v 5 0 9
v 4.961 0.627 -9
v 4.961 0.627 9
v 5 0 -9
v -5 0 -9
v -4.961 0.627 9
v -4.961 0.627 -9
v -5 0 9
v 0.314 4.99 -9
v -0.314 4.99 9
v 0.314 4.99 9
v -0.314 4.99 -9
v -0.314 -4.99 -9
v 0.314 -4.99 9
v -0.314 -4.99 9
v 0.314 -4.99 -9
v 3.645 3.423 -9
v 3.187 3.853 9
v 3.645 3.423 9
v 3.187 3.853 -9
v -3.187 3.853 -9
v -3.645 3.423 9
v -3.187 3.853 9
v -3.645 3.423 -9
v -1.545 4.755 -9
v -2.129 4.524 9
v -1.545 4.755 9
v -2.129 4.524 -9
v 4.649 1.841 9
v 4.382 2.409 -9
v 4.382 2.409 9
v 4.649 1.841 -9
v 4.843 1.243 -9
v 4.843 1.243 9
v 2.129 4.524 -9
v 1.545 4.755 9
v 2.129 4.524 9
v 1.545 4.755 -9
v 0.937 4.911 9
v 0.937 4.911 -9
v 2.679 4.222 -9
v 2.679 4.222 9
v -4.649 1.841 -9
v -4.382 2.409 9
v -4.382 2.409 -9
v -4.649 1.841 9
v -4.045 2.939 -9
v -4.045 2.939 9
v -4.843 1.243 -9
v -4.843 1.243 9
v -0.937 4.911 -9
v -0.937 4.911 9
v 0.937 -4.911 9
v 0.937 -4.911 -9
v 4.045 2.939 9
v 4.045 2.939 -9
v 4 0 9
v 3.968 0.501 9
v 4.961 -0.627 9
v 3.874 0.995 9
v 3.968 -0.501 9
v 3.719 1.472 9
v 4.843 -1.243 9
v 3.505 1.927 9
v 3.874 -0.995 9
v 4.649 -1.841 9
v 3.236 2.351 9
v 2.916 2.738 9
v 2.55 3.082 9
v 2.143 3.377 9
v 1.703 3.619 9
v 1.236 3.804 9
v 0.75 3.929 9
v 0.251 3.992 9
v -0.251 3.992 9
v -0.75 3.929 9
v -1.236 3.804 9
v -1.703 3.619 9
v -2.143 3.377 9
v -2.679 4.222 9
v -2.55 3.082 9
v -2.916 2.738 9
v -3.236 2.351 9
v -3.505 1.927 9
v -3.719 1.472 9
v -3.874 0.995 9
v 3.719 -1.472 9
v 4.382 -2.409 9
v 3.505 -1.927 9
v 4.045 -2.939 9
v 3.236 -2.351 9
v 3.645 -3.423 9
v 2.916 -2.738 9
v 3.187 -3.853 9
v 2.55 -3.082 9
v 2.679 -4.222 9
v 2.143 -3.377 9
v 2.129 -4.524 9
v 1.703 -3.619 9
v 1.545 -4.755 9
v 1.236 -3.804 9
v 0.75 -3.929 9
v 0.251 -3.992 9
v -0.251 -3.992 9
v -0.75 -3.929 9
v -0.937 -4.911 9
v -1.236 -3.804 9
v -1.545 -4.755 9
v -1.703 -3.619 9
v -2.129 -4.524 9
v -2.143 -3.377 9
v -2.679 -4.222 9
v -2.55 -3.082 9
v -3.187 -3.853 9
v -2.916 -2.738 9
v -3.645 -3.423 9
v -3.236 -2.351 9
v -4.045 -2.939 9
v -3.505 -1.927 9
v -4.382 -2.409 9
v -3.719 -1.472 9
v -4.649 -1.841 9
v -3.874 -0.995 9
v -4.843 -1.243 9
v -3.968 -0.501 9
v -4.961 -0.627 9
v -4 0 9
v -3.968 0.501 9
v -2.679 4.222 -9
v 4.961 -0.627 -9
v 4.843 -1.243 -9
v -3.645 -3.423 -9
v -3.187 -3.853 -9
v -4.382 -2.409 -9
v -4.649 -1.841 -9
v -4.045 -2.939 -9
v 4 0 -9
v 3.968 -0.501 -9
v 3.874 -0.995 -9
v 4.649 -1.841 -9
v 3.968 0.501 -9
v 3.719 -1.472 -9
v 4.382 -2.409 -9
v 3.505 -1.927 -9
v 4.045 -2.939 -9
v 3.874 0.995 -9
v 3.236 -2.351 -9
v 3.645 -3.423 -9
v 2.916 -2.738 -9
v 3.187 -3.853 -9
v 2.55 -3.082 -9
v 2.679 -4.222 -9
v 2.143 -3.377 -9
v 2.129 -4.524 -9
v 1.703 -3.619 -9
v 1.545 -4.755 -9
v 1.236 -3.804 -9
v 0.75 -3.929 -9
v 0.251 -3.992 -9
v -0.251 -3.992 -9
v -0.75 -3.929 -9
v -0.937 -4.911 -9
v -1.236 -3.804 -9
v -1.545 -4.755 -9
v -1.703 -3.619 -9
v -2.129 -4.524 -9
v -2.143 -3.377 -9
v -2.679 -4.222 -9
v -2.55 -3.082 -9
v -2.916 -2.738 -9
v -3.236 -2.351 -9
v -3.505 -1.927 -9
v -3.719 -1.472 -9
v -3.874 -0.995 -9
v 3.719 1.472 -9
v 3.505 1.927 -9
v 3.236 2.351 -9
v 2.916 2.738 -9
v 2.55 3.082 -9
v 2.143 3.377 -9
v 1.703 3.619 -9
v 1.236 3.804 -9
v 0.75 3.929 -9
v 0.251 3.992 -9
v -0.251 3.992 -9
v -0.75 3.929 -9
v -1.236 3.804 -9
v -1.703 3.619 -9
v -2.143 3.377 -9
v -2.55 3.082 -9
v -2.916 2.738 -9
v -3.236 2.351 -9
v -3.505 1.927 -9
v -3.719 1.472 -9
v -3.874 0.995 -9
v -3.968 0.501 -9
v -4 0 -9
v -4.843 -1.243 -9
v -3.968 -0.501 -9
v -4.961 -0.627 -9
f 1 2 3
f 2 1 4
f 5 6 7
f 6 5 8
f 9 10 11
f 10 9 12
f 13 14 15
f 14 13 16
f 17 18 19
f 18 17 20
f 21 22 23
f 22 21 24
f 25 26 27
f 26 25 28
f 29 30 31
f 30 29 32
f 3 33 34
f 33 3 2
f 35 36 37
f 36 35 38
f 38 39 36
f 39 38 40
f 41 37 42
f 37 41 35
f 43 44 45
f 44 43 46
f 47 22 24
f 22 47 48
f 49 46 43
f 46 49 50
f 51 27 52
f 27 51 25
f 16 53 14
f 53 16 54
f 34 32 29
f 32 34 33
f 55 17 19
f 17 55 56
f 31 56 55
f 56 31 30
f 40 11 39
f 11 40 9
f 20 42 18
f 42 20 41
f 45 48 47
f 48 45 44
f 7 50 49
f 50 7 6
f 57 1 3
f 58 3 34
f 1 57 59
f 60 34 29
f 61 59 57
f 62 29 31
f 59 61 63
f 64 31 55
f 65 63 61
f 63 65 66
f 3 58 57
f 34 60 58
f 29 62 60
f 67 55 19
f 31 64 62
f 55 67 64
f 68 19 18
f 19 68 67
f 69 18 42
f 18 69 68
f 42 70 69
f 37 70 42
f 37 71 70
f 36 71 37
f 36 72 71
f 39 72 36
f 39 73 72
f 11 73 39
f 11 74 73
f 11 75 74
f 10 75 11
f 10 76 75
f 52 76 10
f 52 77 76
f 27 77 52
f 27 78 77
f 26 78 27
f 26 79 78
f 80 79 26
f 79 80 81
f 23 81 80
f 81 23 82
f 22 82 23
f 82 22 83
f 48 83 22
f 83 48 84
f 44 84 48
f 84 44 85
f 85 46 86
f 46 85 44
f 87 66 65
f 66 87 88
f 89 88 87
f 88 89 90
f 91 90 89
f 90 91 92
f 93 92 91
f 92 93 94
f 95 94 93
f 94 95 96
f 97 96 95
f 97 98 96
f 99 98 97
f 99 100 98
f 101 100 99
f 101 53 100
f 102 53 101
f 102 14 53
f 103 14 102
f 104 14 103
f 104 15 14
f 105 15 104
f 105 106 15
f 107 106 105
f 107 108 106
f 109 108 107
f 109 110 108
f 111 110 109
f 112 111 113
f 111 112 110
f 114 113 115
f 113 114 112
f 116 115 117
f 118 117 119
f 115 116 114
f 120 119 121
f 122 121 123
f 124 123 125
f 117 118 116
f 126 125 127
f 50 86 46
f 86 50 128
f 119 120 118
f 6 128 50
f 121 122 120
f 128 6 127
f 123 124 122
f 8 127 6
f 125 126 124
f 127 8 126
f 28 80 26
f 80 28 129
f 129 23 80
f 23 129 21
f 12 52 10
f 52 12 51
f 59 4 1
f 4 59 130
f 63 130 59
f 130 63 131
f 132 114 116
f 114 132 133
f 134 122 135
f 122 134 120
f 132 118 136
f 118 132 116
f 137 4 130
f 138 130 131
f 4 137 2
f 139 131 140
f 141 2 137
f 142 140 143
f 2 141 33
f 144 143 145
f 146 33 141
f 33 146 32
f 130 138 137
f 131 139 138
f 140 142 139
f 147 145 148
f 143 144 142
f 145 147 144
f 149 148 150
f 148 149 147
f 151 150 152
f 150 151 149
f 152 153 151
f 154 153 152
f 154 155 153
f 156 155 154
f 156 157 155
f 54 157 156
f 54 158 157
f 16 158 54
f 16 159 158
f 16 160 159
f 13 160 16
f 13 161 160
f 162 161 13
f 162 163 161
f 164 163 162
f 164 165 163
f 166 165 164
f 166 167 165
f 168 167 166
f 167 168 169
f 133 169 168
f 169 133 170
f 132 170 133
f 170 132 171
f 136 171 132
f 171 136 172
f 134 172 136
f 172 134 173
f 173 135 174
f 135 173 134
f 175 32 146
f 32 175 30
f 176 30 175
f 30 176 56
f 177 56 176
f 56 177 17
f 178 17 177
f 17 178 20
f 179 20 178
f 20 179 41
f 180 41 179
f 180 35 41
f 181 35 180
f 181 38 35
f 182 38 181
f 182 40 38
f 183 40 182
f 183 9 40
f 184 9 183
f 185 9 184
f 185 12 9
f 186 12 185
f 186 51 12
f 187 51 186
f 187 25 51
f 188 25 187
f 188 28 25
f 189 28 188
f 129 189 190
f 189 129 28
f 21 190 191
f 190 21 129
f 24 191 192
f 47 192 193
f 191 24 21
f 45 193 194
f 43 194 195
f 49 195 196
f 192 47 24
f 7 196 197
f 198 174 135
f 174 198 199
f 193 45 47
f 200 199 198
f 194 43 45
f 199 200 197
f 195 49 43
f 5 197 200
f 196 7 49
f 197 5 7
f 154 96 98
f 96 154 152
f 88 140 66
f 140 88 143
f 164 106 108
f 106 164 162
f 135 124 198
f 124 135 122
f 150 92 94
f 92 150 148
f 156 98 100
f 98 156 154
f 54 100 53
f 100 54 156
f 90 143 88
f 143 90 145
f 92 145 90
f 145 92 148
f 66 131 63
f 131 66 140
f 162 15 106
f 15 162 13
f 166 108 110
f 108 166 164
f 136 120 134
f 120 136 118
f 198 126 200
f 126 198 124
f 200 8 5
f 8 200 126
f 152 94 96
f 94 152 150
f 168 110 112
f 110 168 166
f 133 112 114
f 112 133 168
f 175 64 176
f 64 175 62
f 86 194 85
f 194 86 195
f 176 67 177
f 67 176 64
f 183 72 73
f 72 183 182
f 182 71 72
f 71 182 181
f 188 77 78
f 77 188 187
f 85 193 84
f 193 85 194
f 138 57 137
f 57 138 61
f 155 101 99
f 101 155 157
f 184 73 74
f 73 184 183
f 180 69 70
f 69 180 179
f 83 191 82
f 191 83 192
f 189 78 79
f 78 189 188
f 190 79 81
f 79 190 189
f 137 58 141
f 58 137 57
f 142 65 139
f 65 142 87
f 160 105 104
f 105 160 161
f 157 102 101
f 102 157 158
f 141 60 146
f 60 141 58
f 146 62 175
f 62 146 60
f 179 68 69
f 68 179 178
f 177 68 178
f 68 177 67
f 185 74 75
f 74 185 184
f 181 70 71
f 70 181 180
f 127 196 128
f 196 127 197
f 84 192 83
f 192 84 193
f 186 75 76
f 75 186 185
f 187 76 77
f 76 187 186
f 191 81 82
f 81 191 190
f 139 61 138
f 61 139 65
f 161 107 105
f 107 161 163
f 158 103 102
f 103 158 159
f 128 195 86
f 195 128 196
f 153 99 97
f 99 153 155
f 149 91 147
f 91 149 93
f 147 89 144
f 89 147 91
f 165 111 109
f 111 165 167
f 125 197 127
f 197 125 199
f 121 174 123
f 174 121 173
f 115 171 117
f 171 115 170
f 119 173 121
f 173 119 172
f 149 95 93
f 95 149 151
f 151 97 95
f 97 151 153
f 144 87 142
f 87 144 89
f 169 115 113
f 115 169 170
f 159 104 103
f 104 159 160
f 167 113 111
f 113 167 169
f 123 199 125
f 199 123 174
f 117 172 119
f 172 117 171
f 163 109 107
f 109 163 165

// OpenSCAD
$fn = 50;


difference() {
	union() {
		translate(v = [0, 0, -9.0000000000]) {
			cylinder(h = 18, r = 5.0000000000);
		}
	}
	union() {
		translate(v = [0, 0, -100.0000000000]) {
			cylinder(h = 200, r = 4);
		}
	}
}
